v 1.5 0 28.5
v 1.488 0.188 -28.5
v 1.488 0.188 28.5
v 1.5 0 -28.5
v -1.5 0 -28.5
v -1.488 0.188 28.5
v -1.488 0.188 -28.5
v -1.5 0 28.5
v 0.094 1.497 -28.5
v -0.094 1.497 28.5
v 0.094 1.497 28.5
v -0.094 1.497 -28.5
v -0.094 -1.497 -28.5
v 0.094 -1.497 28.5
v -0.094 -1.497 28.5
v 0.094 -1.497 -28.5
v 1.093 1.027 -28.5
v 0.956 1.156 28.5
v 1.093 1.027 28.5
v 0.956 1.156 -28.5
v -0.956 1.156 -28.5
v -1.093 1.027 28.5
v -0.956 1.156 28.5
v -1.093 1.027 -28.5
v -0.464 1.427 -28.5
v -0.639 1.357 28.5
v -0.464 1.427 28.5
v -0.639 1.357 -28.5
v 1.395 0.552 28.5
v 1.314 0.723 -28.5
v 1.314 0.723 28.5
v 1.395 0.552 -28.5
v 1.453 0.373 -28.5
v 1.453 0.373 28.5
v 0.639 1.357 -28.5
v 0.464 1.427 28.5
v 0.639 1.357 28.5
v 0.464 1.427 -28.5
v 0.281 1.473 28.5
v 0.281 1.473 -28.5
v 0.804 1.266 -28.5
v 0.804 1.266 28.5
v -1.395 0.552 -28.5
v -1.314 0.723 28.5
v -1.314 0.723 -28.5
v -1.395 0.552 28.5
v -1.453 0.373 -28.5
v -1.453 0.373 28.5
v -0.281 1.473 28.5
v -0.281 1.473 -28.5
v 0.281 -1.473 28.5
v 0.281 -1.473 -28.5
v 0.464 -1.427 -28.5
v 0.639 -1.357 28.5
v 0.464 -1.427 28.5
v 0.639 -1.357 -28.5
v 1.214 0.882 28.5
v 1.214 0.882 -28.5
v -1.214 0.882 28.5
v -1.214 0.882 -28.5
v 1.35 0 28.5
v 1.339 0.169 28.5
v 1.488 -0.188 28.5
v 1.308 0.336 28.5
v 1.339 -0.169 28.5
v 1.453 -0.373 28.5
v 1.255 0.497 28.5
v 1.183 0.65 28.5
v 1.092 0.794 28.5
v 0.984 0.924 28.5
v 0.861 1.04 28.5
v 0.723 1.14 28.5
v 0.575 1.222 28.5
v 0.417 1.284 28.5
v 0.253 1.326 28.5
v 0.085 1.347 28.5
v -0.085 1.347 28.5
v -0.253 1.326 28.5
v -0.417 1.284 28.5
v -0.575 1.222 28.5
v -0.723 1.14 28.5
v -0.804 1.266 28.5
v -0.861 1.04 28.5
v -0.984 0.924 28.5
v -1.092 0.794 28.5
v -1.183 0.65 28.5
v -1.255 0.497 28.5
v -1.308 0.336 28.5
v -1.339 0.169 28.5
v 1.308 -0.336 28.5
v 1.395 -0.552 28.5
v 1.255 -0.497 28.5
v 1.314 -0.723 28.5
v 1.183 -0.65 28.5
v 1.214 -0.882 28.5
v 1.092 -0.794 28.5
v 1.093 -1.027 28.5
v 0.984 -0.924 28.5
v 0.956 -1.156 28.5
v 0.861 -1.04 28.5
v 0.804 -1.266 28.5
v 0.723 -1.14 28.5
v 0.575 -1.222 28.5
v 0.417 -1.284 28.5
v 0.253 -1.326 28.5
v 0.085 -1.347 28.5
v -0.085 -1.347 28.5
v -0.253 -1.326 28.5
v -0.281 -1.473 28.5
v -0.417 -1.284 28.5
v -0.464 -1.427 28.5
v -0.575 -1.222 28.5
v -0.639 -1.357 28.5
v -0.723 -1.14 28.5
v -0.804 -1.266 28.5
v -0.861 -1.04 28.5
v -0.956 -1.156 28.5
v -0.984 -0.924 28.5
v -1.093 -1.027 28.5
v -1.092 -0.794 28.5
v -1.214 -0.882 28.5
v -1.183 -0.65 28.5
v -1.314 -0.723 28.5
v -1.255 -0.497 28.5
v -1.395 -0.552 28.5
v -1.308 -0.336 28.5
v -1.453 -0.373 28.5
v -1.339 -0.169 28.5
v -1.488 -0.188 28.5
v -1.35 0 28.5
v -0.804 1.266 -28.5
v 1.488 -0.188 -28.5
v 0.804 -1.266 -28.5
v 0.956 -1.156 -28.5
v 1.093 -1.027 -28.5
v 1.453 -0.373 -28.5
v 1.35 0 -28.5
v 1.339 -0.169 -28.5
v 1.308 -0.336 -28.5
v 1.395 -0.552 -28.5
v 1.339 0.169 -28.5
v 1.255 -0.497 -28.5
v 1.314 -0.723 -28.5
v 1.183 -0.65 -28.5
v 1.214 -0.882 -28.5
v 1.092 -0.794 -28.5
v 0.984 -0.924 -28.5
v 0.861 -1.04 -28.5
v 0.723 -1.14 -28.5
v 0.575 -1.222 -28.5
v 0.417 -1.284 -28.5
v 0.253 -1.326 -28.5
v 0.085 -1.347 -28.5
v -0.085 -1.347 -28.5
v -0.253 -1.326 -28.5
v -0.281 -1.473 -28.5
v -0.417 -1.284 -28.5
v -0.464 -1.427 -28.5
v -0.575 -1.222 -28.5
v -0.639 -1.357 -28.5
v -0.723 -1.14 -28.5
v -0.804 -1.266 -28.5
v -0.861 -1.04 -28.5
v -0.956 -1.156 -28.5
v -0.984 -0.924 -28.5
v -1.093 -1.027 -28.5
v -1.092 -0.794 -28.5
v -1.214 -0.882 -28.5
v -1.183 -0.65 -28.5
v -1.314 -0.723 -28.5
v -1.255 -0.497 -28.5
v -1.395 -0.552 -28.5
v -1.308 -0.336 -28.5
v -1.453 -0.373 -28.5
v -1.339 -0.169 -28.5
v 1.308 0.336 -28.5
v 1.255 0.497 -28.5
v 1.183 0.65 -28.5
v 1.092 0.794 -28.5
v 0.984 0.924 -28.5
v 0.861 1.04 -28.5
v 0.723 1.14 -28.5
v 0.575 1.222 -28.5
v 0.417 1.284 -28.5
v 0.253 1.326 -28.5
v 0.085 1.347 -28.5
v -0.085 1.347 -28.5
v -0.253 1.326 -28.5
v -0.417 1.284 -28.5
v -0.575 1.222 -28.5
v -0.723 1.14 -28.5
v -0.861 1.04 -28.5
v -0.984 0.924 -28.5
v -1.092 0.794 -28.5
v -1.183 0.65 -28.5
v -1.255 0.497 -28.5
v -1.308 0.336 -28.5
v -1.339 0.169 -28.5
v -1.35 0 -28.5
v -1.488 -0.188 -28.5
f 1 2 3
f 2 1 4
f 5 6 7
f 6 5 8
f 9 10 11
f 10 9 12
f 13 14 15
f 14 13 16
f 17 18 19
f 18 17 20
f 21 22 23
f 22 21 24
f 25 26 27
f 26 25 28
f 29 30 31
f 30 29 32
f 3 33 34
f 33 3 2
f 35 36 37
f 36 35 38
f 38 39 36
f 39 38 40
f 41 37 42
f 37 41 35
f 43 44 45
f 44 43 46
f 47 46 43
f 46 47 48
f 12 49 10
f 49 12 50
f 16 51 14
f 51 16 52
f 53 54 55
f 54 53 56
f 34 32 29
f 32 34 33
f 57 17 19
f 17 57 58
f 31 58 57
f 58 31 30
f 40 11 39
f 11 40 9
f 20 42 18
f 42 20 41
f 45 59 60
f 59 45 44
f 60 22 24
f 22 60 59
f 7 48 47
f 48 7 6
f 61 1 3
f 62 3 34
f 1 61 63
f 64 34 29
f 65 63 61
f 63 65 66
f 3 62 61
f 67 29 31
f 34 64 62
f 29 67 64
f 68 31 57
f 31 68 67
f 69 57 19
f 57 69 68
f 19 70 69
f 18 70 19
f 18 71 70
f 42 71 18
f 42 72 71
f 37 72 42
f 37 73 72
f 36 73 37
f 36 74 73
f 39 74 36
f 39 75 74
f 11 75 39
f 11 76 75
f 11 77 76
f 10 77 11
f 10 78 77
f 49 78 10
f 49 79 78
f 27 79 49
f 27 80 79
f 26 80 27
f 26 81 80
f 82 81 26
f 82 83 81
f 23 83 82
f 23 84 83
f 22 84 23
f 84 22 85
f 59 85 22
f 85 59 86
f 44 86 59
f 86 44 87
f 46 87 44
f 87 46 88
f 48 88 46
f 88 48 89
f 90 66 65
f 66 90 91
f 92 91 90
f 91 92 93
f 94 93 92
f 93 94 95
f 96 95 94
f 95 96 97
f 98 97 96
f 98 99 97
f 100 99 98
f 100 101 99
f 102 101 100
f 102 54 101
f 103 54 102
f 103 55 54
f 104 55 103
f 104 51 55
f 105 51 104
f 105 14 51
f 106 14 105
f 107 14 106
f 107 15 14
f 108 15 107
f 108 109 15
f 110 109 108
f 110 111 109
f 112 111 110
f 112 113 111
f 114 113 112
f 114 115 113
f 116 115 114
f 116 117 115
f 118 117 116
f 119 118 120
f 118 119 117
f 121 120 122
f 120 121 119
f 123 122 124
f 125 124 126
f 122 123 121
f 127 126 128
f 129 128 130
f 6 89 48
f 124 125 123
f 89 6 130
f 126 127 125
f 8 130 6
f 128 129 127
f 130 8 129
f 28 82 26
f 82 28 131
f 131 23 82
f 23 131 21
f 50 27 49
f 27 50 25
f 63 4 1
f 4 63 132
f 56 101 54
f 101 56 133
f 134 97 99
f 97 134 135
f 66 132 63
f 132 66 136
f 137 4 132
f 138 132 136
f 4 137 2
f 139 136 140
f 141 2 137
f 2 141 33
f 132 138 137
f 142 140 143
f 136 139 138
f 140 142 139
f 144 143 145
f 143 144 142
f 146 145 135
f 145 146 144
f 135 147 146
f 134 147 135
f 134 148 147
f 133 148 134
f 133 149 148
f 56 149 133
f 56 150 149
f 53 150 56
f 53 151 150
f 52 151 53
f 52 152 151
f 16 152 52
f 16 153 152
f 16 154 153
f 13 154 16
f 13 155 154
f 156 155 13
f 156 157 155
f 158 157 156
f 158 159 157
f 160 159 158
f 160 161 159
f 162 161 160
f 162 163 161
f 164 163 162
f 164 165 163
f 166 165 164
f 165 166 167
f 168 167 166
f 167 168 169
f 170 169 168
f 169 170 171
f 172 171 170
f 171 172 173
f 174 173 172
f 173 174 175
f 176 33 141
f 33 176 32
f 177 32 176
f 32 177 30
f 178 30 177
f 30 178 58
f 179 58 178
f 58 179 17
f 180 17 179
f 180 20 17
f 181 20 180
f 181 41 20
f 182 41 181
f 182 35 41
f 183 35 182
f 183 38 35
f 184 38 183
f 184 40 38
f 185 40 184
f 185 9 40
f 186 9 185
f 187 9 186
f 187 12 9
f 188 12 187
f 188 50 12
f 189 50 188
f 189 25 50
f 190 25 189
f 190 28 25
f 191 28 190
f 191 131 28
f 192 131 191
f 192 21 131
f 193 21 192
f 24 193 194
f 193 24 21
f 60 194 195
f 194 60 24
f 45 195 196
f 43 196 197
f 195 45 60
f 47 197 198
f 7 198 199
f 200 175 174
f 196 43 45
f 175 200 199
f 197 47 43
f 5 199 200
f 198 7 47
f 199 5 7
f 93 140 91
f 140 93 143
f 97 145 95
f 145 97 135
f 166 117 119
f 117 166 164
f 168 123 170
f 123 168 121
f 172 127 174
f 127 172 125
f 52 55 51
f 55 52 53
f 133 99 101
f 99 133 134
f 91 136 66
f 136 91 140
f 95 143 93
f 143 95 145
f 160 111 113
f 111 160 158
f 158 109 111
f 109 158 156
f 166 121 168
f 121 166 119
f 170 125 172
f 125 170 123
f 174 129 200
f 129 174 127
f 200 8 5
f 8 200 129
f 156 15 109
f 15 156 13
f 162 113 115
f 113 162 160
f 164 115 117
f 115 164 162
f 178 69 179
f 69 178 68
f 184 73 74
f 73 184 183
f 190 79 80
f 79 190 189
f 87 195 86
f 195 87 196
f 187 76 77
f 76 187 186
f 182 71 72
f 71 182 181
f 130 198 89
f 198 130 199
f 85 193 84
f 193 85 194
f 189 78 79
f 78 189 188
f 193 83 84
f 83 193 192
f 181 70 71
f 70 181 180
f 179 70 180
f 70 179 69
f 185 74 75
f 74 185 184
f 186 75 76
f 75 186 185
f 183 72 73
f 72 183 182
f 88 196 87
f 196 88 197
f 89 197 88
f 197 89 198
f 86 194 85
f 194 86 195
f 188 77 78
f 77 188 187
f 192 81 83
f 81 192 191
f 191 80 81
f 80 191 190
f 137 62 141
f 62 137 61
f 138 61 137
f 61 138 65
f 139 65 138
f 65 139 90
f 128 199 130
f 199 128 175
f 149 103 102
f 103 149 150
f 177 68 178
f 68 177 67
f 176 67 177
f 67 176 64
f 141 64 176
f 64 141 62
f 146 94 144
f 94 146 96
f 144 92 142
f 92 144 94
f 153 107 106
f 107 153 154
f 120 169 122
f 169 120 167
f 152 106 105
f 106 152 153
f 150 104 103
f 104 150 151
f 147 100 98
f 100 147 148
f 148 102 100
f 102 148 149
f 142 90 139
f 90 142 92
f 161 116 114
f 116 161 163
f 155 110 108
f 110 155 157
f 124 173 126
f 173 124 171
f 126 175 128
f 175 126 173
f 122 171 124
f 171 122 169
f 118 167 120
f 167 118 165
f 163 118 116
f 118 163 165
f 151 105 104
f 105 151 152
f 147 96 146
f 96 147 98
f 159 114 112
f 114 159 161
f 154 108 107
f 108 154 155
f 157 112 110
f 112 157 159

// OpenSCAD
$fn = 50;


difference() {
	union() {
		translate(v = [0, 0, -28.5000000000]) {
			cylinder(h = 57, r = 1.5000000000);
		}
	}
	union() {
		translate(v = [0, 0, -100.0000000000]) {
			cylinder(h = 200, r = 1.3500000000);
		}
	}
}
